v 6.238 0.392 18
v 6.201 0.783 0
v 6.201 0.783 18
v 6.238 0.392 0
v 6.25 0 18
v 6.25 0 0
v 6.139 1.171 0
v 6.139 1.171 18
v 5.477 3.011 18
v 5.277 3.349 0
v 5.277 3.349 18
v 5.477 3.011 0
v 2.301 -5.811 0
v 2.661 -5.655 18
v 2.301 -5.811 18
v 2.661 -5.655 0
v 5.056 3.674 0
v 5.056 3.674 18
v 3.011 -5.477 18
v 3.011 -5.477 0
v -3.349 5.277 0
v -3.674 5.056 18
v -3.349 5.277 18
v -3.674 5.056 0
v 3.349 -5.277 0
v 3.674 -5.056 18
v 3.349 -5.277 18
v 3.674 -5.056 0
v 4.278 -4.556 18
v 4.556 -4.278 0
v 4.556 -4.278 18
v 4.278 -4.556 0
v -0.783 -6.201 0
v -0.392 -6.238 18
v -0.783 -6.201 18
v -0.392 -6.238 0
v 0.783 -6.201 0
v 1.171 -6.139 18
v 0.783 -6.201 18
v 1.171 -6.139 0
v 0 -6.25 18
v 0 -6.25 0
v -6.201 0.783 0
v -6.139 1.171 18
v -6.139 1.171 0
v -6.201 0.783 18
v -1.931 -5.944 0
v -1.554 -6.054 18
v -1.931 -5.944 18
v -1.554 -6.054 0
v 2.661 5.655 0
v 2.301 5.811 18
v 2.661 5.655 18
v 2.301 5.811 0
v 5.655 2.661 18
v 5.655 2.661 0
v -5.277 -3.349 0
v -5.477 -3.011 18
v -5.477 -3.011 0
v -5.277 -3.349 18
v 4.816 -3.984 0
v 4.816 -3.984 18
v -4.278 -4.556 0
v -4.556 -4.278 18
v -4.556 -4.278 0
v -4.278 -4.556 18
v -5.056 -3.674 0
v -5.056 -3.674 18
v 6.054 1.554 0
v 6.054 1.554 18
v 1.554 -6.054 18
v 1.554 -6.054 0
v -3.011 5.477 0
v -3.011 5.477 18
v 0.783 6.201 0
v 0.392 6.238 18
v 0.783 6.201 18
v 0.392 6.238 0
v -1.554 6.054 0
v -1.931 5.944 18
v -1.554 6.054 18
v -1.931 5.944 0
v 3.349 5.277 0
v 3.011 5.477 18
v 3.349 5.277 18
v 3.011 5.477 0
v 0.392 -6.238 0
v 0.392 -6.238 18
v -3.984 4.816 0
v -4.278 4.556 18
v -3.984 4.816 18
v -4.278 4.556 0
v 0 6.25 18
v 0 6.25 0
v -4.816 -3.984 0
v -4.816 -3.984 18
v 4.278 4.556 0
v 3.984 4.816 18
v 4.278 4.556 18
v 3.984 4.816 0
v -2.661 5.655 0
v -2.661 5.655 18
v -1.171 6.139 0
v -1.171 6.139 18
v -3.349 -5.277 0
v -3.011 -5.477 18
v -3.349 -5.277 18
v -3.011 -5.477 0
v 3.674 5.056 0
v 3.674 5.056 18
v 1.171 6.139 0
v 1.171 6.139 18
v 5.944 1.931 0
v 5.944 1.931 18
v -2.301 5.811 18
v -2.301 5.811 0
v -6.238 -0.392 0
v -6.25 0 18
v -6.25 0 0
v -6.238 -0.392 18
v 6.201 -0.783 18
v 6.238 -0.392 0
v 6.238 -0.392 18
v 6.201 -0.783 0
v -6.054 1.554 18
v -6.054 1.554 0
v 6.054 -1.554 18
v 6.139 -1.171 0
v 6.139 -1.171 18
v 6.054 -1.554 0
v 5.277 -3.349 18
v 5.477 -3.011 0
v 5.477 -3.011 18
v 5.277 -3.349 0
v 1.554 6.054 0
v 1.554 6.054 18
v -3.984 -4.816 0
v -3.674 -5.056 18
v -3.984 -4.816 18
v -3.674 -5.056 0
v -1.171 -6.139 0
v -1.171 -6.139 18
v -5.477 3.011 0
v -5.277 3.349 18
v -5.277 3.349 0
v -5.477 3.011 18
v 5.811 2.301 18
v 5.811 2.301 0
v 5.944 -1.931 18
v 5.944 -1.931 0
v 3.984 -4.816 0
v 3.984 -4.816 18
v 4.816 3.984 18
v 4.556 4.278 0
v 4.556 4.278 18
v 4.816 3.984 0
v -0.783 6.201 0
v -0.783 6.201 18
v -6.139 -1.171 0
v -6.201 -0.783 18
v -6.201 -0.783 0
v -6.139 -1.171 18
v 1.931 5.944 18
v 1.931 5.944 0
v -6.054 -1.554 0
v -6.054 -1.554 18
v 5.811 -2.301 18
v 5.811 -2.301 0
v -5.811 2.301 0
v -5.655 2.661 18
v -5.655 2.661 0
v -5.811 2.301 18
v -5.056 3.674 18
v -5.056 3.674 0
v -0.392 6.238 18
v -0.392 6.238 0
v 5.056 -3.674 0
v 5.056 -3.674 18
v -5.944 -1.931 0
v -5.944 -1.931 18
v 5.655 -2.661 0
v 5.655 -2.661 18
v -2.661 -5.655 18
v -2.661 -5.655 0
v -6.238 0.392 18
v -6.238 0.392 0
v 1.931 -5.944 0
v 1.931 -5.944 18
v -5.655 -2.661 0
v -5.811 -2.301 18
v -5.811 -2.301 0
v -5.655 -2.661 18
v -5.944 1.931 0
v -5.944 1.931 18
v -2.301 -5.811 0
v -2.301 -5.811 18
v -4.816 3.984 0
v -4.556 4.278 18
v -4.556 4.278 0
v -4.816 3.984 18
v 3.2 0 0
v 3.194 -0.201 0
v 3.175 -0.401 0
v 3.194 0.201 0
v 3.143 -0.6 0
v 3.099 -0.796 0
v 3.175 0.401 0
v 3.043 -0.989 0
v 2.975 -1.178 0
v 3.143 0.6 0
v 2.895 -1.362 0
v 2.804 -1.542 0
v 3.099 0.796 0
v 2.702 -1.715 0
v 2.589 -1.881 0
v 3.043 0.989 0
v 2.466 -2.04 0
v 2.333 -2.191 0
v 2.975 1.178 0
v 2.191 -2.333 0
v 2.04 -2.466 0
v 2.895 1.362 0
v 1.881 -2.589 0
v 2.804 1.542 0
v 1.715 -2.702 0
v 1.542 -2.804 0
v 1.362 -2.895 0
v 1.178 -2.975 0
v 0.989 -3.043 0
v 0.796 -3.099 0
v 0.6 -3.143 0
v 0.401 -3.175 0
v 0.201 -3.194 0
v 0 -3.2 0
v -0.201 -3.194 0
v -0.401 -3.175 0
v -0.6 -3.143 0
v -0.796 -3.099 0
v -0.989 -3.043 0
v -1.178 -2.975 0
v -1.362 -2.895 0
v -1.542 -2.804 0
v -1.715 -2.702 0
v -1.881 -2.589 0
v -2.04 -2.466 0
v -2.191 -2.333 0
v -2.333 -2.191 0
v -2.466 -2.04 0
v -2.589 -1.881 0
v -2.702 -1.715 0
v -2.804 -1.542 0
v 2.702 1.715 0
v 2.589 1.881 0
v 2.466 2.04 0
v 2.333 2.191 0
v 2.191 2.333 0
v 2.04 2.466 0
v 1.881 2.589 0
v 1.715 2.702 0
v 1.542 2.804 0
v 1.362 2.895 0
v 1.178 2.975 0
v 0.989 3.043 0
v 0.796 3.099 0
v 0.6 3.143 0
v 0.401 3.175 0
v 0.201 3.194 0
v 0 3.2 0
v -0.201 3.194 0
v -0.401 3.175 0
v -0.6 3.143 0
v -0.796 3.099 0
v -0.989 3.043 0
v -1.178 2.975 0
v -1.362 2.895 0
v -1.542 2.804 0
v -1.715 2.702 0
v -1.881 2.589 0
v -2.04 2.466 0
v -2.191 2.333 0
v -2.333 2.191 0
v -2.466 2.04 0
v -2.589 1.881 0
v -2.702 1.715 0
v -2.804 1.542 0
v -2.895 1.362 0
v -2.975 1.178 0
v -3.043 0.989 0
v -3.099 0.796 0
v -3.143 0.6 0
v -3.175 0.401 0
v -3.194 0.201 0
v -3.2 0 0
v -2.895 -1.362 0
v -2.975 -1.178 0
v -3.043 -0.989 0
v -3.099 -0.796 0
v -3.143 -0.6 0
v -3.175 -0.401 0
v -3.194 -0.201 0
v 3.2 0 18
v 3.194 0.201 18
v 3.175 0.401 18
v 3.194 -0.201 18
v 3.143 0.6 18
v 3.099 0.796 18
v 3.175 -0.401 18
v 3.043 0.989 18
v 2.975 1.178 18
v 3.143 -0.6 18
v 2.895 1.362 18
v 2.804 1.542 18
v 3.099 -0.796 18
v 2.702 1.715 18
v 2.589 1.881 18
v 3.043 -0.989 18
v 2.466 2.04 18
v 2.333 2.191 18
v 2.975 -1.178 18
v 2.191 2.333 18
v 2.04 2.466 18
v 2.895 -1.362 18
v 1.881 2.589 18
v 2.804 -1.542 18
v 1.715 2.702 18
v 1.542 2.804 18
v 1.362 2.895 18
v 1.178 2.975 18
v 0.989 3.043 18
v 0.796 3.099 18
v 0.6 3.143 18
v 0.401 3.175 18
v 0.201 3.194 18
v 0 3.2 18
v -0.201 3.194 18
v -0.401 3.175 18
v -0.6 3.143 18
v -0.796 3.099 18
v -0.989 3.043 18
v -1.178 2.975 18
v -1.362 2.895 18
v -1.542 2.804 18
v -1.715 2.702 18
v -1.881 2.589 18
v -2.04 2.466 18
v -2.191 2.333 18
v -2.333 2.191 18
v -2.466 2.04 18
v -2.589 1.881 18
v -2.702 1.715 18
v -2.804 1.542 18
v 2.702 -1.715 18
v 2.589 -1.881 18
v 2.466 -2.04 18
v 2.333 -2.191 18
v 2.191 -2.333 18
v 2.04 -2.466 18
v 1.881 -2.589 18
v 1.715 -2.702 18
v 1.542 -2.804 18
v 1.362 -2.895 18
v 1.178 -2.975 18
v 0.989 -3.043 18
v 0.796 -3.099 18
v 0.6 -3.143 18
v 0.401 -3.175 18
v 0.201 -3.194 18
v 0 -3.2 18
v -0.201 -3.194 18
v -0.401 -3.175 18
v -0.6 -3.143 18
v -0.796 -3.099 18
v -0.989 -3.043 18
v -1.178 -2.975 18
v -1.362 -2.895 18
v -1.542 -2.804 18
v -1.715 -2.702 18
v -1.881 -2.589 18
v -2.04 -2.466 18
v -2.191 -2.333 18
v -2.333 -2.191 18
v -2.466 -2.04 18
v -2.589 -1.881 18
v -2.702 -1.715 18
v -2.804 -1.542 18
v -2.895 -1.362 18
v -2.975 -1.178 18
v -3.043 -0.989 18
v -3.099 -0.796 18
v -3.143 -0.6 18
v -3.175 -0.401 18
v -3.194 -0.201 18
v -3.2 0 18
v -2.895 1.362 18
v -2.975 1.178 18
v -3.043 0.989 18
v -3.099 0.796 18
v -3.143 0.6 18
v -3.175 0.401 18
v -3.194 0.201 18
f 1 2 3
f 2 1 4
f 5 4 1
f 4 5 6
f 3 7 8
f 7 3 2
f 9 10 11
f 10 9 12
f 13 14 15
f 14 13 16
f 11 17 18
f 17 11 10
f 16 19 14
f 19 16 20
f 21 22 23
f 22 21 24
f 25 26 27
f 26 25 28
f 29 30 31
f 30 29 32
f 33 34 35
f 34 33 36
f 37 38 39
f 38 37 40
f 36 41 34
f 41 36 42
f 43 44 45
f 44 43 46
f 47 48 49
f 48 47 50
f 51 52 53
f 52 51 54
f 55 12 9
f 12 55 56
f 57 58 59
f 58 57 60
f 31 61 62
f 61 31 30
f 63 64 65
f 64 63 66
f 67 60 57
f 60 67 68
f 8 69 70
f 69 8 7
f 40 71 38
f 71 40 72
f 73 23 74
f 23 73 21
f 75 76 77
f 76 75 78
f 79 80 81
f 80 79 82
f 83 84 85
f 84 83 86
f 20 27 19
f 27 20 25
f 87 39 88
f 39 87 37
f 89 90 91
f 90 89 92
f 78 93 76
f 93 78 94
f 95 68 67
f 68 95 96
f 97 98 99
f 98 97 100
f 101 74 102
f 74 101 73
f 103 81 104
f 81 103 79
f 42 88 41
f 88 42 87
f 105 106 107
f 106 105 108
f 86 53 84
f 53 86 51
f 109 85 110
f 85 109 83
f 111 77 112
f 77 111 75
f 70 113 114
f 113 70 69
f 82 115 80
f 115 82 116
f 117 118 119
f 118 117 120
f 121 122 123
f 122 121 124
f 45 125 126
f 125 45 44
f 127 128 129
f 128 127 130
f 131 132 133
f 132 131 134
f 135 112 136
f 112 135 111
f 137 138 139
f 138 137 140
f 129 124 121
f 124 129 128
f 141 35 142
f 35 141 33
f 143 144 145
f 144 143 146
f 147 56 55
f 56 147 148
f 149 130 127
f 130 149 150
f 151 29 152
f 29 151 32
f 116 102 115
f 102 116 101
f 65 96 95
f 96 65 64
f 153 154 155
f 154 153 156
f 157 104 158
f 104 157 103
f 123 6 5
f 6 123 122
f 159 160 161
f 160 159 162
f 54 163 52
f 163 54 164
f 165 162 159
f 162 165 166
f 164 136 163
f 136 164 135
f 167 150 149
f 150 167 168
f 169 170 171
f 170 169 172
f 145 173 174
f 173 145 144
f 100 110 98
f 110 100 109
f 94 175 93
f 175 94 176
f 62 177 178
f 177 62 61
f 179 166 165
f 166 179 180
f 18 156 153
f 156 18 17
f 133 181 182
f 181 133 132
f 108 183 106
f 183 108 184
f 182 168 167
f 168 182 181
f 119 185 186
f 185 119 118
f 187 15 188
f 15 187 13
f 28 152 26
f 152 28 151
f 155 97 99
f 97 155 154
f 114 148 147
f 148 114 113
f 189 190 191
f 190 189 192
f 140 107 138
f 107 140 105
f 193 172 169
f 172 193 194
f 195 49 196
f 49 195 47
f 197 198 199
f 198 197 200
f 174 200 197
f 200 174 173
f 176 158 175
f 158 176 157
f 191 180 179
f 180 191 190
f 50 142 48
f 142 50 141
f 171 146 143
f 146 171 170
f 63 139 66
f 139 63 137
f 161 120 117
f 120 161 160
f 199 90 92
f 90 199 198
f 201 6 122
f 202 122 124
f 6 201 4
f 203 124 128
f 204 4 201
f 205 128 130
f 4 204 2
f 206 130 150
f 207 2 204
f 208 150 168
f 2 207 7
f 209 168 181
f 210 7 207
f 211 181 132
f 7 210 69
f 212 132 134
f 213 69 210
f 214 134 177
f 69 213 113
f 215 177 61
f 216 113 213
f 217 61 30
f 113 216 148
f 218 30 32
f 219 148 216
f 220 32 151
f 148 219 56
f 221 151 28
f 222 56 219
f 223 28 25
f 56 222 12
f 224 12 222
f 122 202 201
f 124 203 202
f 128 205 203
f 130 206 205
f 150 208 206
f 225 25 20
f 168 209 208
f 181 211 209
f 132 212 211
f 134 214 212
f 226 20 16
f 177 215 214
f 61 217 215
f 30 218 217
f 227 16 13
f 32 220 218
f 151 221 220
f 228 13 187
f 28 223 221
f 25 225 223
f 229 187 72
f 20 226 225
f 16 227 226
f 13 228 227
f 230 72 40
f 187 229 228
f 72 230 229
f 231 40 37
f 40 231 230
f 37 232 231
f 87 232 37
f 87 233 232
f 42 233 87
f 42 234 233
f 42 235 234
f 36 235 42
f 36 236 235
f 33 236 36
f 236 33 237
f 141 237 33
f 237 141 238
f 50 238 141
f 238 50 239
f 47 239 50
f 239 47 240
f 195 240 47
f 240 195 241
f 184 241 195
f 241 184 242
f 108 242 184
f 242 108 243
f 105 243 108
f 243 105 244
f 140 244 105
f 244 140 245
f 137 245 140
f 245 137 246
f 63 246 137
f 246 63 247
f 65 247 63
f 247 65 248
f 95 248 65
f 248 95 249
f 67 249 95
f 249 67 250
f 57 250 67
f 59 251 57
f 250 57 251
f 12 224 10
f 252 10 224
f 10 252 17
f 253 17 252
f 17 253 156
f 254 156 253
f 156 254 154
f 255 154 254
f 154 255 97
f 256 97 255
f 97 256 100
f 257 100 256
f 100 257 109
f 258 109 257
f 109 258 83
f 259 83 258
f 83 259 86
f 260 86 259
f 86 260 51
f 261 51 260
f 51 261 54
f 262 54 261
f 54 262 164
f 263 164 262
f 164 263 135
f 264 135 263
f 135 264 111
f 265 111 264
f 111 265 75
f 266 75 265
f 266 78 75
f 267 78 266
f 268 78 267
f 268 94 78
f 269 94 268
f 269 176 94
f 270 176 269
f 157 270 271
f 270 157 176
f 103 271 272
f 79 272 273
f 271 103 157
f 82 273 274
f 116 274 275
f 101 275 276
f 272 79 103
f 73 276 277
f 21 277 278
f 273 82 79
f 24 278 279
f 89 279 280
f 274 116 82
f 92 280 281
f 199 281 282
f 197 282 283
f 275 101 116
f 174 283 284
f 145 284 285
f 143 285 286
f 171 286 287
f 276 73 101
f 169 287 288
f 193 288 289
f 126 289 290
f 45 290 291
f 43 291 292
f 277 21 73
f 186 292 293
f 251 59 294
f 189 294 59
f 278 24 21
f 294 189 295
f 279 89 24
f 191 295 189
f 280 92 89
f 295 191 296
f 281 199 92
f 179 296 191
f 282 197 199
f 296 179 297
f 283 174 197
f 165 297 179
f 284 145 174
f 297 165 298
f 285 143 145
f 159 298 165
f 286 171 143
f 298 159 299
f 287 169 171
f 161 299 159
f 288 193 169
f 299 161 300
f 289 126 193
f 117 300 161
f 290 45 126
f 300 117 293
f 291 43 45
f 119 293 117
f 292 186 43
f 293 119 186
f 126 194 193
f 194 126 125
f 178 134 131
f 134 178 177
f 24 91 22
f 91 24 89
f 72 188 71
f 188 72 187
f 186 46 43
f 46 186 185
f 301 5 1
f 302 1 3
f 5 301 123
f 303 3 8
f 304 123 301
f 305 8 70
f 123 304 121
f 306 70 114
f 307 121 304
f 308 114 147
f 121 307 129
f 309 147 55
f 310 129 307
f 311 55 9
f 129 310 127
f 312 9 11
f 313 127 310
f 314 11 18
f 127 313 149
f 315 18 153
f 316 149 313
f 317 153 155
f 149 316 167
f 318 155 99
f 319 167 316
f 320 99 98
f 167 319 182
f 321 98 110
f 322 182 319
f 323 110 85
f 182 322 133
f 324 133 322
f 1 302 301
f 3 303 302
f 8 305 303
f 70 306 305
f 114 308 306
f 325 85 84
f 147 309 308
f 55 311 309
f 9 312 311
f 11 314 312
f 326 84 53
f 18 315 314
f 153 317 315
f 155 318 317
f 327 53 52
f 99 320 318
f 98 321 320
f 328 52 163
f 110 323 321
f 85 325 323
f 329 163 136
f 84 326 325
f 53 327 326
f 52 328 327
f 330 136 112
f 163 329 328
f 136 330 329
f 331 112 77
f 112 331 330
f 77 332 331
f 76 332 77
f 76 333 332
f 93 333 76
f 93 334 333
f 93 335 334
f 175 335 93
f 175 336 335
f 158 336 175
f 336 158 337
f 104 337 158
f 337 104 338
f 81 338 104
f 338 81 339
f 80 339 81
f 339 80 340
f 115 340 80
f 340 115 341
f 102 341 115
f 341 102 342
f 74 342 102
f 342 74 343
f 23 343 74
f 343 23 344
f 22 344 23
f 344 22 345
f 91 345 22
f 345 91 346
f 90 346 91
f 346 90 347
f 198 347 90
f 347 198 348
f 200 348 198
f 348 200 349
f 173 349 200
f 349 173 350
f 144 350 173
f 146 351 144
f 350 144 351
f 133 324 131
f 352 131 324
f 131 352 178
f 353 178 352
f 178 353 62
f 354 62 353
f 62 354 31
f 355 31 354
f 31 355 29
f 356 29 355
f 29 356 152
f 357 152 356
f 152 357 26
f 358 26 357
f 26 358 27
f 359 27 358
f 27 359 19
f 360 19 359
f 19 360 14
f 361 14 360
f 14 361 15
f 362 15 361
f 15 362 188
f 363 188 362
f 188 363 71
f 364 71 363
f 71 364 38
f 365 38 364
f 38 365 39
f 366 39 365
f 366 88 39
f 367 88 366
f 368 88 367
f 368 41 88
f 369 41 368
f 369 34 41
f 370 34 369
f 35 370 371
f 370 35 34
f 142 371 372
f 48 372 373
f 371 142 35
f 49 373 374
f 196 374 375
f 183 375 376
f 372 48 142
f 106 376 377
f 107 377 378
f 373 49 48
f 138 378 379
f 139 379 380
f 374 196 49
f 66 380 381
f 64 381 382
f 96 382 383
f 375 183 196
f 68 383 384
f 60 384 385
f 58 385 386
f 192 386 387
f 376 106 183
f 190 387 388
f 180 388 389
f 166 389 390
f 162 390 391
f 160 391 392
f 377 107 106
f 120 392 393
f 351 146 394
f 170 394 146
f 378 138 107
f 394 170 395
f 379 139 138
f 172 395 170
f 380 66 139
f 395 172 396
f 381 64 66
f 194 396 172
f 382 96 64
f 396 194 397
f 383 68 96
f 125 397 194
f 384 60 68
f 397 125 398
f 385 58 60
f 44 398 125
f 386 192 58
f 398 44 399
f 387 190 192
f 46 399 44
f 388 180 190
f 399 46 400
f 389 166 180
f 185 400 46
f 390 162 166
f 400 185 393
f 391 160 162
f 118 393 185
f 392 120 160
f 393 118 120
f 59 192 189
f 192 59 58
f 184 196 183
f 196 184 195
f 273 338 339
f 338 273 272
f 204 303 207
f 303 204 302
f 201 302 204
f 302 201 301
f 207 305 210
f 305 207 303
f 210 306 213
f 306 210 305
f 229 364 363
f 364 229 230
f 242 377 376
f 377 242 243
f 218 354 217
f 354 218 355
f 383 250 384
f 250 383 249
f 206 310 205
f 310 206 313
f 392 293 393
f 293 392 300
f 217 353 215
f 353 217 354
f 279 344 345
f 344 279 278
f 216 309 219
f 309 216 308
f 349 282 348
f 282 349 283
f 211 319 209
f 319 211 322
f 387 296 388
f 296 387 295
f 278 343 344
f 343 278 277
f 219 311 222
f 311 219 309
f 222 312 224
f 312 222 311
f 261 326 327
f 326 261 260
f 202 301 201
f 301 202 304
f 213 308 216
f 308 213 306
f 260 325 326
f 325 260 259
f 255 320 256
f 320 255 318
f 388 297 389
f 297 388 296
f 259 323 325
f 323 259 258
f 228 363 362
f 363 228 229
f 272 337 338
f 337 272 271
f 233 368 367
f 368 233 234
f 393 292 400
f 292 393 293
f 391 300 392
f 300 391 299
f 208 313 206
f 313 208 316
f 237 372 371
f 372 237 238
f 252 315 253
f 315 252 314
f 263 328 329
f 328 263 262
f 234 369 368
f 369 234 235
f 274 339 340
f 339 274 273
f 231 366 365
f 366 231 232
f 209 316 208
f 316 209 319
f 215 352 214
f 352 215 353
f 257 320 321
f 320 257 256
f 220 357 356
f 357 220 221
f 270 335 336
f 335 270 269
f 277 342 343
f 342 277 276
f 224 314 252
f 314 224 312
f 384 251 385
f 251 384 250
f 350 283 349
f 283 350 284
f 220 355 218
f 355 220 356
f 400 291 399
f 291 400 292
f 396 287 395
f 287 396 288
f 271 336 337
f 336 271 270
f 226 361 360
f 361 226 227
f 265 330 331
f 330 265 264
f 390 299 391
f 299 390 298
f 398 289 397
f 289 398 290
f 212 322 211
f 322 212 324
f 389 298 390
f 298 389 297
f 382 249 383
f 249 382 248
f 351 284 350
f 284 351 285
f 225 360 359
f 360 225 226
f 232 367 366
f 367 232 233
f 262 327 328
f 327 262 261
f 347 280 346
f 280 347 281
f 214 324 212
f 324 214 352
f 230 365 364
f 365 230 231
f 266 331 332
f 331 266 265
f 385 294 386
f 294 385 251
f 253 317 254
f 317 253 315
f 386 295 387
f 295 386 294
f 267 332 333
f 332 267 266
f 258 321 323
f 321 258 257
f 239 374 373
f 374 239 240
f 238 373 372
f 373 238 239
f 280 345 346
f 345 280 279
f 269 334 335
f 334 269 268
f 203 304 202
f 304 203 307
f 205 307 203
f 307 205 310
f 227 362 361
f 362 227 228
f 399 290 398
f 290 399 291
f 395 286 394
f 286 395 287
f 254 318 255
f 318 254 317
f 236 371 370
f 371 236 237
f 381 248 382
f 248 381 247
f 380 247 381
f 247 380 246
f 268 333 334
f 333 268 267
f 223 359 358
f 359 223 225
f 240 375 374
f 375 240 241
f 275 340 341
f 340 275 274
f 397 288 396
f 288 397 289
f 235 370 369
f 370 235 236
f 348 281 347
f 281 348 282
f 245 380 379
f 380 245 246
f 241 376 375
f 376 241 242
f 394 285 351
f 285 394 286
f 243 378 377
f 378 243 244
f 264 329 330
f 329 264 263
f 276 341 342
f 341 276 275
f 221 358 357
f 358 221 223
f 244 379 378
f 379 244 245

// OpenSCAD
// Spacer to mount targets to side fumblers, robot, and flappy-doos

$fn = 100;

module spacer(id, od, length) {
    difference() {
        cylinder(h=length, r=od/2);
        cylinder(h=length, r=id/2);
    }
}

spacer(id=6.4, od=12.5, length=18);
